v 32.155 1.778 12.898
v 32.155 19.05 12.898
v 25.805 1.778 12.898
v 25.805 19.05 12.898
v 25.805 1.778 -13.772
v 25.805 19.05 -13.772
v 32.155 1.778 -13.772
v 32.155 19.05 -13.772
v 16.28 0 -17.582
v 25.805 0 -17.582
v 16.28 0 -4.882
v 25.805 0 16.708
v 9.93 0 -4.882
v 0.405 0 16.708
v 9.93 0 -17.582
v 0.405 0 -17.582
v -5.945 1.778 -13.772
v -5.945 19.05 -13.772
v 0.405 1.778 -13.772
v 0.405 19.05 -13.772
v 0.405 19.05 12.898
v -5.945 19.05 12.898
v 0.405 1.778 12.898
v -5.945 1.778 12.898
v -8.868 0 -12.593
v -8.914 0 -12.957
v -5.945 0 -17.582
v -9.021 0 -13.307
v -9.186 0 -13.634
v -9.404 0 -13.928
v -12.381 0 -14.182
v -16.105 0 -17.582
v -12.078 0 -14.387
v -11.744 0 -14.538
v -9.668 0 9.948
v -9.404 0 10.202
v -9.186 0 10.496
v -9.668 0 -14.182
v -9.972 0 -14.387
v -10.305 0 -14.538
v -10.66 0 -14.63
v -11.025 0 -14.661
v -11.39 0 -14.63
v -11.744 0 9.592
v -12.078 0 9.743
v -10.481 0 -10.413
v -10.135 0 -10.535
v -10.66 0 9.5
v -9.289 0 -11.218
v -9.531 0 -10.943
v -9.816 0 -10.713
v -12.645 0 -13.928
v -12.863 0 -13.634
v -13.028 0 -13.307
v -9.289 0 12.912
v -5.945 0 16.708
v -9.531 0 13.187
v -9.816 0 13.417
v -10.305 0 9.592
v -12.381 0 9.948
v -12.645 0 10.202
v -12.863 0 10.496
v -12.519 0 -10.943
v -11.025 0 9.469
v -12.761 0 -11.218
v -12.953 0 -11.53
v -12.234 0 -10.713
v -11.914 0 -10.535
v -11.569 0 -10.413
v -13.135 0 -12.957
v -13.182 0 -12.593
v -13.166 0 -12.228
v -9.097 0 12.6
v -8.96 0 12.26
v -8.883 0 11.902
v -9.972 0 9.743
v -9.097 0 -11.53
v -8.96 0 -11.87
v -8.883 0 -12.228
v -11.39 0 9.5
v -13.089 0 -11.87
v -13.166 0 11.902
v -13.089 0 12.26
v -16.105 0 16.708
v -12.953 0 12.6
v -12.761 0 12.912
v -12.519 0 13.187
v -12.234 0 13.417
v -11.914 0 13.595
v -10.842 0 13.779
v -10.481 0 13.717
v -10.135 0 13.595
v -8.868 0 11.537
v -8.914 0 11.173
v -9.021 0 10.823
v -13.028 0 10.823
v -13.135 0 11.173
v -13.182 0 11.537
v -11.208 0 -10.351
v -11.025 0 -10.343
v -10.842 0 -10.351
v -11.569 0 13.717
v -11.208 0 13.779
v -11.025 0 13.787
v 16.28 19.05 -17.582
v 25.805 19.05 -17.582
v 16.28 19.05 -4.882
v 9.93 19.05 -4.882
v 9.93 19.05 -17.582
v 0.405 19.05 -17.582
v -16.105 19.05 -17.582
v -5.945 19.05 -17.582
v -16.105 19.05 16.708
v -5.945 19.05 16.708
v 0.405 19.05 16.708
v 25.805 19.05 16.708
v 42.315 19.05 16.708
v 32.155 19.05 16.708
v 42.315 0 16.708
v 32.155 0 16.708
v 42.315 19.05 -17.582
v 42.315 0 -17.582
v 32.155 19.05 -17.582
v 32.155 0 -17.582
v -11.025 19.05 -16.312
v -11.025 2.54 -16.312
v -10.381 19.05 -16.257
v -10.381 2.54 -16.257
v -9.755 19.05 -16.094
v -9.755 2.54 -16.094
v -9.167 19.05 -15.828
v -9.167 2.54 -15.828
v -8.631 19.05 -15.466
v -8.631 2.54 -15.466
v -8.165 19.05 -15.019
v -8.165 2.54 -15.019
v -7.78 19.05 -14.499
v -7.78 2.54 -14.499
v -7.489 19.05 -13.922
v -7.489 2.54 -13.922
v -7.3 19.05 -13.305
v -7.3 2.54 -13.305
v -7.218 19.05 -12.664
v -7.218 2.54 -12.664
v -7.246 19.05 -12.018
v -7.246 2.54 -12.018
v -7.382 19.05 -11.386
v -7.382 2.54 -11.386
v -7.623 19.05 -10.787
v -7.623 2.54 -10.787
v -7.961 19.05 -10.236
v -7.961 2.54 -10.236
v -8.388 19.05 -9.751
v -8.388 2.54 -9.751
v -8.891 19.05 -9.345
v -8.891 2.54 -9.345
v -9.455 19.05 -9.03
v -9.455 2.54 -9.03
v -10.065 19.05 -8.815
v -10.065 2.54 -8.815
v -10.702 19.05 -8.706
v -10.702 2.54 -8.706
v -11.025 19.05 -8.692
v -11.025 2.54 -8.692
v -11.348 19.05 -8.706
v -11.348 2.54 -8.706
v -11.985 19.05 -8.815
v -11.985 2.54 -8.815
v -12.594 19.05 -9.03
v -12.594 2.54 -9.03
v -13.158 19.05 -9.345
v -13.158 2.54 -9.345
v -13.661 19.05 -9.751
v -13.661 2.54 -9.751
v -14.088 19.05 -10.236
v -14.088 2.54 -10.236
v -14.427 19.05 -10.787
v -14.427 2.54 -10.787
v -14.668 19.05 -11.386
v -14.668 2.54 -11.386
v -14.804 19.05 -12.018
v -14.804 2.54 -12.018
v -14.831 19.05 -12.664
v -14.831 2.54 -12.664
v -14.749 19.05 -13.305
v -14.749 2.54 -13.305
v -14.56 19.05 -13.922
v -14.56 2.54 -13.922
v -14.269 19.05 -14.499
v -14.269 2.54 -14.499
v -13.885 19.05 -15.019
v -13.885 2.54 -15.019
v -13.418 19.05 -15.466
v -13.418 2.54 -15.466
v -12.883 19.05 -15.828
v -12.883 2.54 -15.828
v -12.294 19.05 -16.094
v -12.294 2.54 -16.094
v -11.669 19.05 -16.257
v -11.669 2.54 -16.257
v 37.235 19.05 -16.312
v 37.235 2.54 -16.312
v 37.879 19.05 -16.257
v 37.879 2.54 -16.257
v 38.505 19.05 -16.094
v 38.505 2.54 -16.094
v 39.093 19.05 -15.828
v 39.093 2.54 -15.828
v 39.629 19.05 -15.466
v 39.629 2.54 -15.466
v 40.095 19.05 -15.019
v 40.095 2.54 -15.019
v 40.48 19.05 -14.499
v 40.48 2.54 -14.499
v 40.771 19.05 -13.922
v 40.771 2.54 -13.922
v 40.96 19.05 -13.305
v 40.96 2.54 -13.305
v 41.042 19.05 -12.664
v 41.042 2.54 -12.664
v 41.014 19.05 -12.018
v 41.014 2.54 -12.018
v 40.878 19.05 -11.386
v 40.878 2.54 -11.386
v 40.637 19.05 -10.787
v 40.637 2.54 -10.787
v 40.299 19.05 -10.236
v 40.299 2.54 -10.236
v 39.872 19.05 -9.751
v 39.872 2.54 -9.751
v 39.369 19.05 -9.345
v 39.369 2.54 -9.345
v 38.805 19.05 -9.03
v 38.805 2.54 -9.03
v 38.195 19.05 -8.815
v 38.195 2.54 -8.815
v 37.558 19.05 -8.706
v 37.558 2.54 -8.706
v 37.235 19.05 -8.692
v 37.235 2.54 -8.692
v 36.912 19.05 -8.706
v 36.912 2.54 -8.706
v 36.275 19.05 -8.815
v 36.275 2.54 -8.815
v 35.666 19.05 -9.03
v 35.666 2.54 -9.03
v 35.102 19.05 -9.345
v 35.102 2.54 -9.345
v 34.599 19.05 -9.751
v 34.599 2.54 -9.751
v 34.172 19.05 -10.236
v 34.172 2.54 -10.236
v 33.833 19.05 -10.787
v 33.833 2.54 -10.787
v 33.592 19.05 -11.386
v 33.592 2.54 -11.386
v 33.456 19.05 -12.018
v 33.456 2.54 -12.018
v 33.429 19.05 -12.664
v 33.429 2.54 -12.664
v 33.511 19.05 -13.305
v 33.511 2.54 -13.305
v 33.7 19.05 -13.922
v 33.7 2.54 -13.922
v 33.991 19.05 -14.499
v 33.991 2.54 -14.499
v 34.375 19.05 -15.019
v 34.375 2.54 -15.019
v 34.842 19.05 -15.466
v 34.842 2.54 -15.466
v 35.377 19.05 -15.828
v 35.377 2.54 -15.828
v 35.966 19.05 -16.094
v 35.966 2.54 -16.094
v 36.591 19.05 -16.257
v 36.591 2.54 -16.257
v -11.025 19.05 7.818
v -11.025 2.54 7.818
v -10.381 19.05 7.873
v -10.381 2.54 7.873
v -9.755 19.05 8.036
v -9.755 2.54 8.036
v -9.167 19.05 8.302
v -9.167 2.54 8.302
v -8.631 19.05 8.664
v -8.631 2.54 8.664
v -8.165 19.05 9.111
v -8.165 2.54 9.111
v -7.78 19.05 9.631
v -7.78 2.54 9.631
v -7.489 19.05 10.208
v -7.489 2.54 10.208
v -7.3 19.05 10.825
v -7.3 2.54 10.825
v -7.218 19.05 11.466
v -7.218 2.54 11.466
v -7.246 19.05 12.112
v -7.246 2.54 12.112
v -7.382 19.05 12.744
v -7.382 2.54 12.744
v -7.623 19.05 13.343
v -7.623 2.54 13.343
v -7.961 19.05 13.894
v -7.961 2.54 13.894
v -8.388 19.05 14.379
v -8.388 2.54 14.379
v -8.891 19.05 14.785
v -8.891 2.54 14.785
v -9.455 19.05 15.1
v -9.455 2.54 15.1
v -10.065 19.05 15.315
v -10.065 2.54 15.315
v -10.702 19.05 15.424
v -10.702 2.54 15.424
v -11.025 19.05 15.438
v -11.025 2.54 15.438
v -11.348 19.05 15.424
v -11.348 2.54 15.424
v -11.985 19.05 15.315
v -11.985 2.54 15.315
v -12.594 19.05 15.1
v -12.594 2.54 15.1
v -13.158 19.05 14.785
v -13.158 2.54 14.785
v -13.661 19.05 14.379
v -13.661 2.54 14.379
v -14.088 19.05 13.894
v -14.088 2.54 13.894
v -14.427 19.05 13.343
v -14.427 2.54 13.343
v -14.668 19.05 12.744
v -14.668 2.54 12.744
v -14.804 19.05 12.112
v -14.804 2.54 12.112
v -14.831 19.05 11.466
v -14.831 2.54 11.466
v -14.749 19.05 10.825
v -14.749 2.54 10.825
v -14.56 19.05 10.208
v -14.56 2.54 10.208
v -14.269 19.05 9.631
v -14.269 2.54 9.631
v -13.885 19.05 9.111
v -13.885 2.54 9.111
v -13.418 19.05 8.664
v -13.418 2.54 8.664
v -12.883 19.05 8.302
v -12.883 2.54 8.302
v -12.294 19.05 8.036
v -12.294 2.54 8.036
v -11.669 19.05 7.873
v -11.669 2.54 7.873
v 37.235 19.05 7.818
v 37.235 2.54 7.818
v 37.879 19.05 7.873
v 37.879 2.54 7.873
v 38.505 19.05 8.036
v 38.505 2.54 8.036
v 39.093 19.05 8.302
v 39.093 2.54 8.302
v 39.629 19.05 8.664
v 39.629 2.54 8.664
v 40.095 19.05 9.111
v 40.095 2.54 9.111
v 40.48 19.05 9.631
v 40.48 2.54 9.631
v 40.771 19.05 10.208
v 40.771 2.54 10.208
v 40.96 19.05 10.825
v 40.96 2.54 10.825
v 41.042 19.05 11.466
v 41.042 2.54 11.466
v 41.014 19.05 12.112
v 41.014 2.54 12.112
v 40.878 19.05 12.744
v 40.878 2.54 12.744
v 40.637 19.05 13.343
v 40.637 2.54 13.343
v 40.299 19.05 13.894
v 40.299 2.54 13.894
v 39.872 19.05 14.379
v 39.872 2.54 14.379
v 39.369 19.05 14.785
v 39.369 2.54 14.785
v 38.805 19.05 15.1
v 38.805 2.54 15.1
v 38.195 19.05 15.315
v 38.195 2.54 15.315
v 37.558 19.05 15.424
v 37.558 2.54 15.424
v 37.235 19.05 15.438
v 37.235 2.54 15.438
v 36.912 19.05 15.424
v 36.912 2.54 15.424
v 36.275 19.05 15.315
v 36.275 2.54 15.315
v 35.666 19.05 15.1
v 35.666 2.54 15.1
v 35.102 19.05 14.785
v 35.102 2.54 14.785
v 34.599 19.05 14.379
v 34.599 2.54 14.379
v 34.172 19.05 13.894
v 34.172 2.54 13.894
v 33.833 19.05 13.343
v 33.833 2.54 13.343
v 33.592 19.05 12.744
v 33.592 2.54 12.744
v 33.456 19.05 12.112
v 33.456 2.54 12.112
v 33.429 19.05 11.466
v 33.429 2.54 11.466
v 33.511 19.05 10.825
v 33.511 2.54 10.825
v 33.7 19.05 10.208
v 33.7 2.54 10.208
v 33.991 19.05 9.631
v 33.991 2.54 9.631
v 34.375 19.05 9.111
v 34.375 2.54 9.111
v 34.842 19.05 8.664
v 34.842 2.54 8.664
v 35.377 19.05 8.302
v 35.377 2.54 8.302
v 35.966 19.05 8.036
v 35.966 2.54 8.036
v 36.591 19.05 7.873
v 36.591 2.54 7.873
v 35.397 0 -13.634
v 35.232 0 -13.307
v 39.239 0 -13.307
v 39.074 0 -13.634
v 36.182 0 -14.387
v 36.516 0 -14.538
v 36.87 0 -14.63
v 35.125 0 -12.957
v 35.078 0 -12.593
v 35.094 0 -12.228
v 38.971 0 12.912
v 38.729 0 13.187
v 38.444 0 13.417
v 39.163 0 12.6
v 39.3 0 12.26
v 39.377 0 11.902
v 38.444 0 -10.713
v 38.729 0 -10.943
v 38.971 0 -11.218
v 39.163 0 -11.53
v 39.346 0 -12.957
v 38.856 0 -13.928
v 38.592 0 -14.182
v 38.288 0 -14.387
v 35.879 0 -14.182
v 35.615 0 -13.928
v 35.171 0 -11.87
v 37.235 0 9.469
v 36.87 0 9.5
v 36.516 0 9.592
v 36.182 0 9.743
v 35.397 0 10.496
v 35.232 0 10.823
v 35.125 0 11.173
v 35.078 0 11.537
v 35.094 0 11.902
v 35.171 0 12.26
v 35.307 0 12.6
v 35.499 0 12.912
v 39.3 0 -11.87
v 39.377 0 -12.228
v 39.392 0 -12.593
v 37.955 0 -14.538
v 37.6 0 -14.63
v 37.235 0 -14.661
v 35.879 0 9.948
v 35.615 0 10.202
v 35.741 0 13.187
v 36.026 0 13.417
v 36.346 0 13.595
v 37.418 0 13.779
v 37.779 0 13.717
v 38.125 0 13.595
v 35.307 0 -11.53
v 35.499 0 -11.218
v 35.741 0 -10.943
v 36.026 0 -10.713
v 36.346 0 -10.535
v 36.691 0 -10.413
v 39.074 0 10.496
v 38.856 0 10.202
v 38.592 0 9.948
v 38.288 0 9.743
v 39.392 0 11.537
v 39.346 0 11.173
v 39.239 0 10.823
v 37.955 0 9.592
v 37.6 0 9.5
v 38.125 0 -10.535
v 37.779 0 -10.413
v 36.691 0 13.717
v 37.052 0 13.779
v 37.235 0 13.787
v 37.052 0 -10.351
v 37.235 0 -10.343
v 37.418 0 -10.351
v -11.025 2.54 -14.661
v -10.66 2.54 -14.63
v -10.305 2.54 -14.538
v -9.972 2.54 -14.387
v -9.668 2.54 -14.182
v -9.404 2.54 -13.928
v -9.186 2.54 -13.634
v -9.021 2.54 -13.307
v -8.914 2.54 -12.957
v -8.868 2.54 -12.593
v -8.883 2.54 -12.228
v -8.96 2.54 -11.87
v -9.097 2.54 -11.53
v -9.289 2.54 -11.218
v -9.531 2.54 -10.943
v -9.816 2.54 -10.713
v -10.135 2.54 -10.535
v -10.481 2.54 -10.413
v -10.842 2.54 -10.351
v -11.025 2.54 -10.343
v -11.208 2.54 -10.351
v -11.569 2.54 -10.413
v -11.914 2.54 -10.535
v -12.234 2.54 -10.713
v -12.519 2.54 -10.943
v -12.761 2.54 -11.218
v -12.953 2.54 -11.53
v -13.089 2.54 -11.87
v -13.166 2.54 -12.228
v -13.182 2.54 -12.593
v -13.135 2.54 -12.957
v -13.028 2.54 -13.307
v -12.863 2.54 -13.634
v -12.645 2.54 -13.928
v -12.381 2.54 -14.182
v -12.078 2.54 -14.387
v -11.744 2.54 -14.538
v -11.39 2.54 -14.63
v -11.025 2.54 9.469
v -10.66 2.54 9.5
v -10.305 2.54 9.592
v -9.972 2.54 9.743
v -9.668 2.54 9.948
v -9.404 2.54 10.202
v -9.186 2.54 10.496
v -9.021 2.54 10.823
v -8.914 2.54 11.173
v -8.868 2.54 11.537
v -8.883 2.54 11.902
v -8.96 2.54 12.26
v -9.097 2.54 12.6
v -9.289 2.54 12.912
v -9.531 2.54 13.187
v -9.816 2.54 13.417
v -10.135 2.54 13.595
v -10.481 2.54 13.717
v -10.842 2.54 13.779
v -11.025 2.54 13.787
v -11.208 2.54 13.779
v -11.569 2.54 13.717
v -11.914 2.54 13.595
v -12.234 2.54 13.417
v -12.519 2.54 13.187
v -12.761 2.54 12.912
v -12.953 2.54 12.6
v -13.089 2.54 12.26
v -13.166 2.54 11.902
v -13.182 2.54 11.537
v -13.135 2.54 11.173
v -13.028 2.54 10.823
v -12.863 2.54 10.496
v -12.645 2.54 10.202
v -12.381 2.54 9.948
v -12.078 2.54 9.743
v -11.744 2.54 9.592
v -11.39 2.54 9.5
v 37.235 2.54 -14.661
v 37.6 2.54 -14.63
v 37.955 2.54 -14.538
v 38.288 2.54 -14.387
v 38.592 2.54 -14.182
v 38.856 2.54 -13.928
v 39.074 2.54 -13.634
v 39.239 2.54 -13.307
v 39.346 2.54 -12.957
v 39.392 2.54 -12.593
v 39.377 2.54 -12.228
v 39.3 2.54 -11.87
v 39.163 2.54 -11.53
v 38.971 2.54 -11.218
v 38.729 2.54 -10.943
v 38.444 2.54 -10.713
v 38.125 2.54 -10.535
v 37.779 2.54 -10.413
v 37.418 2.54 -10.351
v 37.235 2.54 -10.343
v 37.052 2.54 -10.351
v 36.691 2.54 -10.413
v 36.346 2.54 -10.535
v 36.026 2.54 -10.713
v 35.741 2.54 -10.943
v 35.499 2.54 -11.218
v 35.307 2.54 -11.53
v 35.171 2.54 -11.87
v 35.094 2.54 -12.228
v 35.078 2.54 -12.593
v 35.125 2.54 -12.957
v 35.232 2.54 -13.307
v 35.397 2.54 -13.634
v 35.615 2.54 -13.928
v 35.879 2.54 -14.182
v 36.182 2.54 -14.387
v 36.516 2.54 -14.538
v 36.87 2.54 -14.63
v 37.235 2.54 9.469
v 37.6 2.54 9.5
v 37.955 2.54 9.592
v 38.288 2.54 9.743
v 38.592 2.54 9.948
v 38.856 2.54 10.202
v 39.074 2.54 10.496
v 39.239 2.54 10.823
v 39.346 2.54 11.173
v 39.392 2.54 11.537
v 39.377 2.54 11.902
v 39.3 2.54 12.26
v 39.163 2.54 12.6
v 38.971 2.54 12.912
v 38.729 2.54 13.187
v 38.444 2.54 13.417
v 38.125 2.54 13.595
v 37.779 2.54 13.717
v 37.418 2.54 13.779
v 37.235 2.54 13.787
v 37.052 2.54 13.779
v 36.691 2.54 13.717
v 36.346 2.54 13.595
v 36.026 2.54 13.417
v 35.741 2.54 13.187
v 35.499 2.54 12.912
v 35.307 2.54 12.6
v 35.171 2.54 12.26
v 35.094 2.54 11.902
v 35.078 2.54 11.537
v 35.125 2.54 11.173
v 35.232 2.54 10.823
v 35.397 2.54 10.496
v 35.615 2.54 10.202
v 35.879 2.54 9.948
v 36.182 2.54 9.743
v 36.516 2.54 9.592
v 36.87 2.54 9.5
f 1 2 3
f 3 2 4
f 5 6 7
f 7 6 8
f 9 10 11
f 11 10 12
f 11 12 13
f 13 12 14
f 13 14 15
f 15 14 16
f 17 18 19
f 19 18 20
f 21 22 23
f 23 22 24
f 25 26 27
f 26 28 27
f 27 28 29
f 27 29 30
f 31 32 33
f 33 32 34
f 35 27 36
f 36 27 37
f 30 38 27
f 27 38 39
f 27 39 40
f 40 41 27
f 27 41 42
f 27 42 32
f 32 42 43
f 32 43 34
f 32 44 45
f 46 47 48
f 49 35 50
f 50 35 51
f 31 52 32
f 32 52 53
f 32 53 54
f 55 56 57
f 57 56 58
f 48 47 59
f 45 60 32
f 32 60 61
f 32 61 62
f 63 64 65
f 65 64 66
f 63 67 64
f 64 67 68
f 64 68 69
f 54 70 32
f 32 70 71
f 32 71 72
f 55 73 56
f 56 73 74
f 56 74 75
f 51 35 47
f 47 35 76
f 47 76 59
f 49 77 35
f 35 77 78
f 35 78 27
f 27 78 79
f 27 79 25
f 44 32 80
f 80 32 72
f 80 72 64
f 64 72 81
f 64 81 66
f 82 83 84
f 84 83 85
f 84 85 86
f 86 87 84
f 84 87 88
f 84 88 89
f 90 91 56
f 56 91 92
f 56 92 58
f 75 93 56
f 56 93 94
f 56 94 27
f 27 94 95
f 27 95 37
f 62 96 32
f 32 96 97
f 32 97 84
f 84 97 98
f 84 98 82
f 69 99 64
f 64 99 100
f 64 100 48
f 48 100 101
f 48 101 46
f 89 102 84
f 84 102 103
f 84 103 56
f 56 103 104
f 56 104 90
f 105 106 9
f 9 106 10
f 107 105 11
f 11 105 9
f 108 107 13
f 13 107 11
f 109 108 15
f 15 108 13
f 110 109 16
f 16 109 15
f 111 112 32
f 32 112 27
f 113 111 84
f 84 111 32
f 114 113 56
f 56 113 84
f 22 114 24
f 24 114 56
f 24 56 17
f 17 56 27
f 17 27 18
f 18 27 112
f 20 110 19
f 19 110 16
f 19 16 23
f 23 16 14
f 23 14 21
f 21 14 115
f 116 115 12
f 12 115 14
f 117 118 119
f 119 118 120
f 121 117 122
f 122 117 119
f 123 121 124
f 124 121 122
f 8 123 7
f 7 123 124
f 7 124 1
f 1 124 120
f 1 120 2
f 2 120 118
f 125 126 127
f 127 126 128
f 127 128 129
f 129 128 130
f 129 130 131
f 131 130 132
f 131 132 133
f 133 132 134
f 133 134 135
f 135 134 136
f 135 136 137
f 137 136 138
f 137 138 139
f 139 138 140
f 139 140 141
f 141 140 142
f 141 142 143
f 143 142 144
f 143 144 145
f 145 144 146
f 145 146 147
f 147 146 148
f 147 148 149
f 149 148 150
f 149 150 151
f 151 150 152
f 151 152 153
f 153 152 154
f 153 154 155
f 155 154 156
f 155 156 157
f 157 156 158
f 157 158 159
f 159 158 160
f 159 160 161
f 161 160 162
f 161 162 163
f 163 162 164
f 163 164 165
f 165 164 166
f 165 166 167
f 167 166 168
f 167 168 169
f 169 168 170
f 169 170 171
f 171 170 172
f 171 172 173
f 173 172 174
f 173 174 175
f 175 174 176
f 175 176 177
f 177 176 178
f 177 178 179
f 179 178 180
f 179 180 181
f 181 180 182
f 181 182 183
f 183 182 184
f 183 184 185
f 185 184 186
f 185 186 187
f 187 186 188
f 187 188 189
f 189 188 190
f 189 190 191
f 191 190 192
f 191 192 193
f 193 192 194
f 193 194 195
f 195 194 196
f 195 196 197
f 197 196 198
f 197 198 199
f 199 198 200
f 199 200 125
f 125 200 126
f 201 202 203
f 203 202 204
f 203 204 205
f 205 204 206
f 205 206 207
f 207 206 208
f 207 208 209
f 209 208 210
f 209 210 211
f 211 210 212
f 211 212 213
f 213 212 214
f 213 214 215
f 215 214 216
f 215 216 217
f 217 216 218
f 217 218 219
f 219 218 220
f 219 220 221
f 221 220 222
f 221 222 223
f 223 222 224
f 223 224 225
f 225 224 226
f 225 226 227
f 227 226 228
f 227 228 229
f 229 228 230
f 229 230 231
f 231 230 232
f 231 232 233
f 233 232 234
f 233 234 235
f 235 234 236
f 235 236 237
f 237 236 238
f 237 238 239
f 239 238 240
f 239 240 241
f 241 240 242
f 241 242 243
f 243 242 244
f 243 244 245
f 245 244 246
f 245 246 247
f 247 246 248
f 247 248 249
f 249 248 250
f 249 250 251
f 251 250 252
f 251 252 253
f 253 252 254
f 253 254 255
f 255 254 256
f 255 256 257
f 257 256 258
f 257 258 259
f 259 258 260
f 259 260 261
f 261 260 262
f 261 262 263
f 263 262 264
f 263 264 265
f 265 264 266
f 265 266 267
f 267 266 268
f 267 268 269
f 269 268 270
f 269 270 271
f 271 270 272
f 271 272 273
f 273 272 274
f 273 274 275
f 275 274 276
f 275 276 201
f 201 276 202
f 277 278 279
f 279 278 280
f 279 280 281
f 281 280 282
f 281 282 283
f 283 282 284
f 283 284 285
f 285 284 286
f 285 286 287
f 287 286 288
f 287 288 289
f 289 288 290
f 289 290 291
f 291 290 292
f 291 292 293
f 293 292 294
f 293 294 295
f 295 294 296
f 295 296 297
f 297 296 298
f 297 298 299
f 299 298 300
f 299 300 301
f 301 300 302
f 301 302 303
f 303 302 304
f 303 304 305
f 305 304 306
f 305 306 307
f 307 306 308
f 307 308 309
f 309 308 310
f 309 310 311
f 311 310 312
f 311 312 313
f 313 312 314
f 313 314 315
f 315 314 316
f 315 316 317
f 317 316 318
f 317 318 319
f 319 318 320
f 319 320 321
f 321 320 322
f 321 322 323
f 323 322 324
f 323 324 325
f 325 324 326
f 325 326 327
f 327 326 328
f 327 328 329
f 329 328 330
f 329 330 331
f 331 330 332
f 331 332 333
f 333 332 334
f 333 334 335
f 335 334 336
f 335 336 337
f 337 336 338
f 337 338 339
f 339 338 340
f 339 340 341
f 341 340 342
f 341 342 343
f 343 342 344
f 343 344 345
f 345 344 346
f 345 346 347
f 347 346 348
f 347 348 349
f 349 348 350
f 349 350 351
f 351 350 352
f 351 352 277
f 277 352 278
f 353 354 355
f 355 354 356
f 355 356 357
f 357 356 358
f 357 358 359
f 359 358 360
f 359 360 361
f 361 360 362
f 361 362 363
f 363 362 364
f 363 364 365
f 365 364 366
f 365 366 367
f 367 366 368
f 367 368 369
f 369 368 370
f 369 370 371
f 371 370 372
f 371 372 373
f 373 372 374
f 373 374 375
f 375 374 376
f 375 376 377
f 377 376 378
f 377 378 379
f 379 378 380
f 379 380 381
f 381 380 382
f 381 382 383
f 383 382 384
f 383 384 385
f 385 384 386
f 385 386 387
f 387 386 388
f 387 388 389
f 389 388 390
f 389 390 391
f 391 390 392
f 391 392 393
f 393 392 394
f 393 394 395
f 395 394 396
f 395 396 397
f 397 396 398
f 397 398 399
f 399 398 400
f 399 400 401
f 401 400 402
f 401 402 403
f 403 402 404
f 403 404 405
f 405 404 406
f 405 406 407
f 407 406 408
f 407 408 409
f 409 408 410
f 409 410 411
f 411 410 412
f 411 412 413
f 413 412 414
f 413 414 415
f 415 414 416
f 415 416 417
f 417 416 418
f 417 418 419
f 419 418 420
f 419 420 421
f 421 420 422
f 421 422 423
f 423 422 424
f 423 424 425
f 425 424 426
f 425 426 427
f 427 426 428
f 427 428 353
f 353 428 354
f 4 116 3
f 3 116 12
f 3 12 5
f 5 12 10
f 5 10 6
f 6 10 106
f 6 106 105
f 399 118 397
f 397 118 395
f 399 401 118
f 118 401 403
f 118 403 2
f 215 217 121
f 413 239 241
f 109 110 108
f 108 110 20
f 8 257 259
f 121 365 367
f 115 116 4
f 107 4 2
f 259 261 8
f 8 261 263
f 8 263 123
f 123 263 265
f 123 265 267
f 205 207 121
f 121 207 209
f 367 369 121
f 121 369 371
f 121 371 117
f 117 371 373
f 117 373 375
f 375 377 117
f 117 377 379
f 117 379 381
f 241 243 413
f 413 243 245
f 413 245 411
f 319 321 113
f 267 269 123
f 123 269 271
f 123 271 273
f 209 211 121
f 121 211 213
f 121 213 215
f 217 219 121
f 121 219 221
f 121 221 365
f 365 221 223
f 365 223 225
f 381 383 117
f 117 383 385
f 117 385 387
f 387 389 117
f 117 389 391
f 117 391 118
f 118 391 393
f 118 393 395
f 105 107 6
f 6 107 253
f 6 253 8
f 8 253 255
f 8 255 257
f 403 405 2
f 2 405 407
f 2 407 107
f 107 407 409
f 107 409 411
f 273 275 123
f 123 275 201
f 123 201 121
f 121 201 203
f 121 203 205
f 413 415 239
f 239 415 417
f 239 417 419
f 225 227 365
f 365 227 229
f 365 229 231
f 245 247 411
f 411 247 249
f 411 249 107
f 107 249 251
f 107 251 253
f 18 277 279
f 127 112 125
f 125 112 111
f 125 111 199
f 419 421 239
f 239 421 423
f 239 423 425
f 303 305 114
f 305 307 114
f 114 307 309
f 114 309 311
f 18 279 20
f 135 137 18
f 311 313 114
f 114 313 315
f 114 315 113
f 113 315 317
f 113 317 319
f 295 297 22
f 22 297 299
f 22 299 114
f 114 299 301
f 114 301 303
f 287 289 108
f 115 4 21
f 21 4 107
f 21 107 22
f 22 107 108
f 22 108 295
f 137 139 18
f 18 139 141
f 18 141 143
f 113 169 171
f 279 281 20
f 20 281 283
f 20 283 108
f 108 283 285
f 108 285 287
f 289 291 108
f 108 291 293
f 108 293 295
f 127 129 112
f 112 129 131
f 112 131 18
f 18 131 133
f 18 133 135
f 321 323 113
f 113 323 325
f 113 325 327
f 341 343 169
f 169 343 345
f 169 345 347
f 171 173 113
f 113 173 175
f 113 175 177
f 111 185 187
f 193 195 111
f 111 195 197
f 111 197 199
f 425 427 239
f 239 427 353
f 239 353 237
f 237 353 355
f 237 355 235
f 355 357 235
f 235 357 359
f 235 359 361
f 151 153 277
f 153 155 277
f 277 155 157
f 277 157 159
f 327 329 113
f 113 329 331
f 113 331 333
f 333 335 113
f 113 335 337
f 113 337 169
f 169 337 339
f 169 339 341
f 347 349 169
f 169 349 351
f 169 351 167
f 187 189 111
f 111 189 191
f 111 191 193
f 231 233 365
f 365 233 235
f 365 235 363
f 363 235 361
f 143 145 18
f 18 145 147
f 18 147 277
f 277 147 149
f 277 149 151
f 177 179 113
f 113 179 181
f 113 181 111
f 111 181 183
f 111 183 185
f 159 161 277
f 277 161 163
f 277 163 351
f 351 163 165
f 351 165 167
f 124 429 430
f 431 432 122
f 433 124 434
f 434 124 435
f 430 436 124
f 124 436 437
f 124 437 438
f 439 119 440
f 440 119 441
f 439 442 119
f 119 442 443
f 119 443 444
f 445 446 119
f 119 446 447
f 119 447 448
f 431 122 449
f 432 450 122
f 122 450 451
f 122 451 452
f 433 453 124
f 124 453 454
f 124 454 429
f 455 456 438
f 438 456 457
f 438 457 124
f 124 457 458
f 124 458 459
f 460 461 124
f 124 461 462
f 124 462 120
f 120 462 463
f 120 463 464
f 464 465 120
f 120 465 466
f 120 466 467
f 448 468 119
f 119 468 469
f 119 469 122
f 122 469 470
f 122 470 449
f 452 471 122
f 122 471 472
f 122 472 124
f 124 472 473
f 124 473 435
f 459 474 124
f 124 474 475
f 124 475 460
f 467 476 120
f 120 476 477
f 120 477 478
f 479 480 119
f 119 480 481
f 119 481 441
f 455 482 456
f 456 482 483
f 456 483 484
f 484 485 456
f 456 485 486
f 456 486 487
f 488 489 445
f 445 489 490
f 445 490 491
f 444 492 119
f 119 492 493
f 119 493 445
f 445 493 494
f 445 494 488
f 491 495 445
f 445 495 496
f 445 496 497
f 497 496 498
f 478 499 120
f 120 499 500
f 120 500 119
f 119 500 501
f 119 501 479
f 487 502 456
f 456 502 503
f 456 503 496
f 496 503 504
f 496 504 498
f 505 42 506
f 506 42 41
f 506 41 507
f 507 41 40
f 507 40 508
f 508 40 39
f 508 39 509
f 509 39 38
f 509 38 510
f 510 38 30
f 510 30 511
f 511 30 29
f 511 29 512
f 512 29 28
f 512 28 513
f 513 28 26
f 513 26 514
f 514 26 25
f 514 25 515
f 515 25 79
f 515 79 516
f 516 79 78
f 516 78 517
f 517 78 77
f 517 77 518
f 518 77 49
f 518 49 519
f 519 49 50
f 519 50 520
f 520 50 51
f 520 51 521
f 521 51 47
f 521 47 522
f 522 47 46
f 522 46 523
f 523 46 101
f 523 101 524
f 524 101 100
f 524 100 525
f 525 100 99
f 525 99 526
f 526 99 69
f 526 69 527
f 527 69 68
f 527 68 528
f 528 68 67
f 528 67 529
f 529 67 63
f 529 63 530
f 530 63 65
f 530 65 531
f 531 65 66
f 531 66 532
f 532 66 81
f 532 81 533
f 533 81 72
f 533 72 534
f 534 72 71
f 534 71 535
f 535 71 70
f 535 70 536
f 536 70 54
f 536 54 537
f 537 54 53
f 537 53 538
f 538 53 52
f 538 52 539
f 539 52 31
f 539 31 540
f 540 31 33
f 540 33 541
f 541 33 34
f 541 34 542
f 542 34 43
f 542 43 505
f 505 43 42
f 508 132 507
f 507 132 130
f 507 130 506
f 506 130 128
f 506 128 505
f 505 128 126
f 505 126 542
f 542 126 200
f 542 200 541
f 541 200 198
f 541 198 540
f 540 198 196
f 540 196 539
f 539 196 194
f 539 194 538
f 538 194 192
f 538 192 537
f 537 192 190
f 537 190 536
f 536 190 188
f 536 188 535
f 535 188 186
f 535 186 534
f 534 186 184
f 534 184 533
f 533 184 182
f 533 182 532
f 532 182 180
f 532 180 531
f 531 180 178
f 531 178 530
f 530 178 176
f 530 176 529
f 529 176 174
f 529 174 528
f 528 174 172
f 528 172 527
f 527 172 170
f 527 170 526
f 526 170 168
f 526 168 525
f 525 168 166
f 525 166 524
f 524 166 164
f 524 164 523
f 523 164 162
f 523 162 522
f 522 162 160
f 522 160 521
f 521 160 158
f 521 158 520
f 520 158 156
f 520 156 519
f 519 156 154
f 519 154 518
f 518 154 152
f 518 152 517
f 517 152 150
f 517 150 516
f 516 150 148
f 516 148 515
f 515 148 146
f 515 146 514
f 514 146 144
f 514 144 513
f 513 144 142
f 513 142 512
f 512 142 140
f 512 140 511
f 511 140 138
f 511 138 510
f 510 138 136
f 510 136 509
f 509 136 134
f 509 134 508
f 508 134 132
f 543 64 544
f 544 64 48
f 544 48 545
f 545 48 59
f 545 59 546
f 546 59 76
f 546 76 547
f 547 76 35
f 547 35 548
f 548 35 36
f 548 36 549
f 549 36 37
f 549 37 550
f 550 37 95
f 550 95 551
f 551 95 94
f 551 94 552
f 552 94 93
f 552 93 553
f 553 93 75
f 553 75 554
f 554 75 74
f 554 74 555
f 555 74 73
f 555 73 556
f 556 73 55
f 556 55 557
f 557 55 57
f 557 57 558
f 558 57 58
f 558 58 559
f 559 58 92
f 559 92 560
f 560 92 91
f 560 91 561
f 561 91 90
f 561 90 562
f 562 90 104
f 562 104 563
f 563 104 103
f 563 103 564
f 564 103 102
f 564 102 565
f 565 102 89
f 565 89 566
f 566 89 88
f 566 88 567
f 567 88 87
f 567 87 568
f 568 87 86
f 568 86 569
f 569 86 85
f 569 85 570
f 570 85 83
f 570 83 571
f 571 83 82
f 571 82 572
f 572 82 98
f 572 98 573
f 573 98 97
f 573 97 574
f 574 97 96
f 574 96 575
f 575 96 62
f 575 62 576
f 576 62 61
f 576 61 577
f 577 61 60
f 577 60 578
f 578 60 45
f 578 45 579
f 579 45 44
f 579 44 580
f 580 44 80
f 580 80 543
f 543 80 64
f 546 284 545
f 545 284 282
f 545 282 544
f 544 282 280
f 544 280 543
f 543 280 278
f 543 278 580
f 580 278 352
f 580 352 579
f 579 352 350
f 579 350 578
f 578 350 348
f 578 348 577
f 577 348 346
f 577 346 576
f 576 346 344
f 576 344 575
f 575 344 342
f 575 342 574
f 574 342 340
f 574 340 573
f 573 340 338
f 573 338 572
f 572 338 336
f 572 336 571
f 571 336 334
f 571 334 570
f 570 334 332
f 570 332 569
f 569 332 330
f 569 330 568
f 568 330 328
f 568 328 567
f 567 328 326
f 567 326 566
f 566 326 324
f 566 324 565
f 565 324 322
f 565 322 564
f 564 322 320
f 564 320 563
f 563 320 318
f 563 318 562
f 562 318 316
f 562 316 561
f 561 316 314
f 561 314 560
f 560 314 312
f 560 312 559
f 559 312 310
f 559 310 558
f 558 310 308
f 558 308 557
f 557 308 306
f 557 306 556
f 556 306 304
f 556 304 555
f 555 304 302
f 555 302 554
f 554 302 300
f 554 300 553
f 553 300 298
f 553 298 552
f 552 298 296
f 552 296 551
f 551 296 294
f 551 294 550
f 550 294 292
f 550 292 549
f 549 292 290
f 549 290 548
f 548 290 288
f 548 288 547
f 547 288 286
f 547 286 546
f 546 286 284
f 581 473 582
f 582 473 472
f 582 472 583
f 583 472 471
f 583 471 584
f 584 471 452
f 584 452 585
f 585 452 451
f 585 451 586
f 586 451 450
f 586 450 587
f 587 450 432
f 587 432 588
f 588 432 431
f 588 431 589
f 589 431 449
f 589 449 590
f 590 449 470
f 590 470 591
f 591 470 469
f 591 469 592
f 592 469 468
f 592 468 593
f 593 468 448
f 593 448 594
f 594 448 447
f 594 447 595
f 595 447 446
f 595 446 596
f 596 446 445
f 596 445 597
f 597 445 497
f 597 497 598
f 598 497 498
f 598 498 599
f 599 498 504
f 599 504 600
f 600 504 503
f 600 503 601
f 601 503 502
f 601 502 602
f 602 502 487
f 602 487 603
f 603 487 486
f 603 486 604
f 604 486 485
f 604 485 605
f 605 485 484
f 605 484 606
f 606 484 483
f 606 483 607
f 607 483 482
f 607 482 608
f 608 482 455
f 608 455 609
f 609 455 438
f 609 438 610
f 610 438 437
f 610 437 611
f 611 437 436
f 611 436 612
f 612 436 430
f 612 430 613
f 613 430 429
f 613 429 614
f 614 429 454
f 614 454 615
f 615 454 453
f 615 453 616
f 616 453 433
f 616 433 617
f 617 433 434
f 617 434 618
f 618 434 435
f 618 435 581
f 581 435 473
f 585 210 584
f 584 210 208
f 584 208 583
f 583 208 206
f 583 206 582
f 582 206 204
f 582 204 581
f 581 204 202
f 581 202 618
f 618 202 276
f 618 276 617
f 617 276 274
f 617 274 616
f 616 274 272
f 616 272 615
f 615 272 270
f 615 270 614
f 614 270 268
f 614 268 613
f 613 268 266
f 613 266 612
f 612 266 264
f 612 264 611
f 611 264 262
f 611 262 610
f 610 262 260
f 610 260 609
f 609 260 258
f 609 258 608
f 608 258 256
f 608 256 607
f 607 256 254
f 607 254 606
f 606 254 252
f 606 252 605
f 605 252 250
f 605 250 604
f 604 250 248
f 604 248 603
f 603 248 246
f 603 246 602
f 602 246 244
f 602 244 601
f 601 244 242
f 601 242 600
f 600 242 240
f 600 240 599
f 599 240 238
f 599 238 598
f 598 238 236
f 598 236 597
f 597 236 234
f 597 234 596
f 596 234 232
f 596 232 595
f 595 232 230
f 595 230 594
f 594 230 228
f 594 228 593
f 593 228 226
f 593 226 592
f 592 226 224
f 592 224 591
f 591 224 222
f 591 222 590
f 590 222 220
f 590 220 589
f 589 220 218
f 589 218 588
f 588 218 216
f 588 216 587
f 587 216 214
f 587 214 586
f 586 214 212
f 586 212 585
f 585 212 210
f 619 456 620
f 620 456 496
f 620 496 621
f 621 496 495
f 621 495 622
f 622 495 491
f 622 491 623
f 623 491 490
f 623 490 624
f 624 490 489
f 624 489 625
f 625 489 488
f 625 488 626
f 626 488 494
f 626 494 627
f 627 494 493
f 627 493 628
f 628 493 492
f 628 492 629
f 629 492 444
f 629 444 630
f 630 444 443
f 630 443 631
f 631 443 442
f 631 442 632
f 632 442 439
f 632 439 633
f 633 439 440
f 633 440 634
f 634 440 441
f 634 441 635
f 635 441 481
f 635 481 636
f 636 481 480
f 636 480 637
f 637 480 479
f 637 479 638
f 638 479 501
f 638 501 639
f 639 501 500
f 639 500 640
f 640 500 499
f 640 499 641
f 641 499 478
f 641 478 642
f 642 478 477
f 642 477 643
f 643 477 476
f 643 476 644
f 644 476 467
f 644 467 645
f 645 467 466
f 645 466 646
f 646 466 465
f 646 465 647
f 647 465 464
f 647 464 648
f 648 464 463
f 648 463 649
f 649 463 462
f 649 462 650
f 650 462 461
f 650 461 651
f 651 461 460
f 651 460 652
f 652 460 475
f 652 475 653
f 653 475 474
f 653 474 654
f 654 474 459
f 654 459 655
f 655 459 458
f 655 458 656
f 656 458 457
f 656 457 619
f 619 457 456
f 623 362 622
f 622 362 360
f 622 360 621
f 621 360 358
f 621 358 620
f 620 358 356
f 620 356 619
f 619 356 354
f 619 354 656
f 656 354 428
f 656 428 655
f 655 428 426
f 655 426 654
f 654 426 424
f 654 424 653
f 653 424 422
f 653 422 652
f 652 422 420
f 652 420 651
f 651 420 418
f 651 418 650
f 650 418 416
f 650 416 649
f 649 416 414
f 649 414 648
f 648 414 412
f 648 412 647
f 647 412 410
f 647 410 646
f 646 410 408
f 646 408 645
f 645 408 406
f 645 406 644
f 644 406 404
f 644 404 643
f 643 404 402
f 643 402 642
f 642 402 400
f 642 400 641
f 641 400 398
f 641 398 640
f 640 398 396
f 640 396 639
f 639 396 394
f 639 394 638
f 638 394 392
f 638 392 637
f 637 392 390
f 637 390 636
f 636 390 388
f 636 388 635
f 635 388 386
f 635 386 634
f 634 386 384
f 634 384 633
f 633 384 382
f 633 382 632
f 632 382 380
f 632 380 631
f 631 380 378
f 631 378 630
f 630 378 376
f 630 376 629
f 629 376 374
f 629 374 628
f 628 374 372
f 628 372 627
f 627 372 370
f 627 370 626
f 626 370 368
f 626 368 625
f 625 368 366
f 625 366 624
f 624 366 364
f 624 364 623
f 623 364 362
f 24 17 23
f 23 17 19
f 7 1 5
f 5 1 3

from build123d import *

# Parameters (mm, degrees)
SKETCH1_R           = 3.81
BOSS_EXTRUDE1_DEPTH = 19.05
SKETCH1_3_R         = 3.81
SKETCH1_3_R_2       = 2.159
BOSS_EXTRUDE2_DEPTH = 2.54
SKETCH2_W           = 6.35
SKETCH2_H           = 1.778
CUT_EXTRUDE2_DEPTH  = 58.700024564


with BuildPart() as part:
    # Sketch1 → Boss-Extrude1 (new body)
    with BuildSketch(Plane(origin=(0, 0, 0), x_dir=(1, 0, 0), z_dir=(0, 1, 0))):
        Polygon((-5.944680851, 17.581843972), (-16.104680851, 17.581843972), (-16.104680851, -16.708156028), (-5.944680851, -16.708156028), (-5.944680851, -12.898156028), (0.405319149, -12.898156028), (0.405319149, -16.708156028), (25.805319149, -16.708156028), (25.805319149, -12.898156028), (32.155319149, -12.898156028), (32.155319149, -16.708156028), (42.315319149, -16.708156028), (42.315319149, 17.581843972), (32.155319149, 17.581843972), (32.155319149, 13.771843972), (25.805319149, 13.771843972), (25.805319149, 17.581843972), (16.280319149, 17.581843972), (16.280319149, 4.881843972), (9.930319149, 4.881843972), (9.930319149, 17.581843972), (0.405319149, 17.581843972), (0.405319149, 13.771843972), (-5.944680851, 13.771843972), align=None)
        with Locations((-11.024680851, 12.501843972)):
            Circle(SKETCH1_R, mode=Mode.SUBTRACT)
        with Locations((37.235319149, 12.501843972)):
            Circle(SKETCH1_R, mode=Mode.SUBTRACT)
        with Locations((37.235319149, -11.628156028)):
            Circle(SKETCH1_R, mode=Mode.SUBTRACT)
        with Locations((-11.024680851, -11.628156028)):
            Circle(SKETCH1_R, mode=Mode.SUBTRACT)
    extrude(amount=BOSS_EXTRUDE1_DEPTH)

    # Sketch1<3> → Boss-Extrude2 (add)
    # profile 1 of 4: a face of its own
    with BuildSketch(Plane(origin=(0, 0, 0), x_dir=(1, 0, 0), z_dir=(0, 1, 0))):
        with Locations((-11.024680851, 12.501843972)):
            Circle(SKETCH1_3_R)
        with Locations((-11.024680851, 12.501843972)):
            Circle(SKETCH1_3_R_2, mode=Mode.SUBTRACT)
    # profile 2 of 4: a face of its own
    with BuildSketch(Plane(origin=(0, 0, 0), x_dir=(1, 0, 0), z_dir=(0, 1, 0))):
        with Locations((37.235319149, 12.501843972)):
            Circle(SKETCH1_3_R)
        with Locations((37.235319149, 12.501843972)):
            Circle(SKETCH1_3_R_2, mode=Mode.SUBTRACT)
    # profile 3 of 4: a face of its own
    with BuildSketch(Plane(origin=(0, 0, 0), x_dir=(1, 0, 0), z_dir=(0, 1, 0))):
        with Locations((-11.024680851, -11.628156028)):
            Circle(SKETCH1_3_R)
        with Locations((-11.024680851, -11.628156028)):
            Circle(SKETCH1_3_R_2, mode=Mode.SUBTRACT)
    # profile 4 of 4: a face of its own
    with BuildSketch(Plane(origin=(0, 0, 0), x_dir=(1, 0, 0), z_dir=(0, 1, 0))):
        with Locations((37.235319149, -11.628156028)):
            Circle(SKETCH1_3_R)
        with Locations((37.235319149, -11.628156028)):
            Circle(SKETCH1_3_R_2, mode=Mode.SUBTRACT)
    extrude(amount=BOSS_EXTRUDE2_DEPTH)

    # Sketch2 → Cut-Extrude2 (cut, through all)
    with BuildSketch(Plane.XY.offset(16.708156028)):
        with Locations((-2.769680851, 0.889)):
            Rectangle(SKETCH2_W, SKETCH2_H)
        with Locations((28.980319149, 0.889)):
            Rectangle(SKETCH2_W, SKETCH2_H)
    extrude(amount=-CUT_EXTRUDE2_DEPTH, mode=Mode.SUBTRACT)


solid = part.part
